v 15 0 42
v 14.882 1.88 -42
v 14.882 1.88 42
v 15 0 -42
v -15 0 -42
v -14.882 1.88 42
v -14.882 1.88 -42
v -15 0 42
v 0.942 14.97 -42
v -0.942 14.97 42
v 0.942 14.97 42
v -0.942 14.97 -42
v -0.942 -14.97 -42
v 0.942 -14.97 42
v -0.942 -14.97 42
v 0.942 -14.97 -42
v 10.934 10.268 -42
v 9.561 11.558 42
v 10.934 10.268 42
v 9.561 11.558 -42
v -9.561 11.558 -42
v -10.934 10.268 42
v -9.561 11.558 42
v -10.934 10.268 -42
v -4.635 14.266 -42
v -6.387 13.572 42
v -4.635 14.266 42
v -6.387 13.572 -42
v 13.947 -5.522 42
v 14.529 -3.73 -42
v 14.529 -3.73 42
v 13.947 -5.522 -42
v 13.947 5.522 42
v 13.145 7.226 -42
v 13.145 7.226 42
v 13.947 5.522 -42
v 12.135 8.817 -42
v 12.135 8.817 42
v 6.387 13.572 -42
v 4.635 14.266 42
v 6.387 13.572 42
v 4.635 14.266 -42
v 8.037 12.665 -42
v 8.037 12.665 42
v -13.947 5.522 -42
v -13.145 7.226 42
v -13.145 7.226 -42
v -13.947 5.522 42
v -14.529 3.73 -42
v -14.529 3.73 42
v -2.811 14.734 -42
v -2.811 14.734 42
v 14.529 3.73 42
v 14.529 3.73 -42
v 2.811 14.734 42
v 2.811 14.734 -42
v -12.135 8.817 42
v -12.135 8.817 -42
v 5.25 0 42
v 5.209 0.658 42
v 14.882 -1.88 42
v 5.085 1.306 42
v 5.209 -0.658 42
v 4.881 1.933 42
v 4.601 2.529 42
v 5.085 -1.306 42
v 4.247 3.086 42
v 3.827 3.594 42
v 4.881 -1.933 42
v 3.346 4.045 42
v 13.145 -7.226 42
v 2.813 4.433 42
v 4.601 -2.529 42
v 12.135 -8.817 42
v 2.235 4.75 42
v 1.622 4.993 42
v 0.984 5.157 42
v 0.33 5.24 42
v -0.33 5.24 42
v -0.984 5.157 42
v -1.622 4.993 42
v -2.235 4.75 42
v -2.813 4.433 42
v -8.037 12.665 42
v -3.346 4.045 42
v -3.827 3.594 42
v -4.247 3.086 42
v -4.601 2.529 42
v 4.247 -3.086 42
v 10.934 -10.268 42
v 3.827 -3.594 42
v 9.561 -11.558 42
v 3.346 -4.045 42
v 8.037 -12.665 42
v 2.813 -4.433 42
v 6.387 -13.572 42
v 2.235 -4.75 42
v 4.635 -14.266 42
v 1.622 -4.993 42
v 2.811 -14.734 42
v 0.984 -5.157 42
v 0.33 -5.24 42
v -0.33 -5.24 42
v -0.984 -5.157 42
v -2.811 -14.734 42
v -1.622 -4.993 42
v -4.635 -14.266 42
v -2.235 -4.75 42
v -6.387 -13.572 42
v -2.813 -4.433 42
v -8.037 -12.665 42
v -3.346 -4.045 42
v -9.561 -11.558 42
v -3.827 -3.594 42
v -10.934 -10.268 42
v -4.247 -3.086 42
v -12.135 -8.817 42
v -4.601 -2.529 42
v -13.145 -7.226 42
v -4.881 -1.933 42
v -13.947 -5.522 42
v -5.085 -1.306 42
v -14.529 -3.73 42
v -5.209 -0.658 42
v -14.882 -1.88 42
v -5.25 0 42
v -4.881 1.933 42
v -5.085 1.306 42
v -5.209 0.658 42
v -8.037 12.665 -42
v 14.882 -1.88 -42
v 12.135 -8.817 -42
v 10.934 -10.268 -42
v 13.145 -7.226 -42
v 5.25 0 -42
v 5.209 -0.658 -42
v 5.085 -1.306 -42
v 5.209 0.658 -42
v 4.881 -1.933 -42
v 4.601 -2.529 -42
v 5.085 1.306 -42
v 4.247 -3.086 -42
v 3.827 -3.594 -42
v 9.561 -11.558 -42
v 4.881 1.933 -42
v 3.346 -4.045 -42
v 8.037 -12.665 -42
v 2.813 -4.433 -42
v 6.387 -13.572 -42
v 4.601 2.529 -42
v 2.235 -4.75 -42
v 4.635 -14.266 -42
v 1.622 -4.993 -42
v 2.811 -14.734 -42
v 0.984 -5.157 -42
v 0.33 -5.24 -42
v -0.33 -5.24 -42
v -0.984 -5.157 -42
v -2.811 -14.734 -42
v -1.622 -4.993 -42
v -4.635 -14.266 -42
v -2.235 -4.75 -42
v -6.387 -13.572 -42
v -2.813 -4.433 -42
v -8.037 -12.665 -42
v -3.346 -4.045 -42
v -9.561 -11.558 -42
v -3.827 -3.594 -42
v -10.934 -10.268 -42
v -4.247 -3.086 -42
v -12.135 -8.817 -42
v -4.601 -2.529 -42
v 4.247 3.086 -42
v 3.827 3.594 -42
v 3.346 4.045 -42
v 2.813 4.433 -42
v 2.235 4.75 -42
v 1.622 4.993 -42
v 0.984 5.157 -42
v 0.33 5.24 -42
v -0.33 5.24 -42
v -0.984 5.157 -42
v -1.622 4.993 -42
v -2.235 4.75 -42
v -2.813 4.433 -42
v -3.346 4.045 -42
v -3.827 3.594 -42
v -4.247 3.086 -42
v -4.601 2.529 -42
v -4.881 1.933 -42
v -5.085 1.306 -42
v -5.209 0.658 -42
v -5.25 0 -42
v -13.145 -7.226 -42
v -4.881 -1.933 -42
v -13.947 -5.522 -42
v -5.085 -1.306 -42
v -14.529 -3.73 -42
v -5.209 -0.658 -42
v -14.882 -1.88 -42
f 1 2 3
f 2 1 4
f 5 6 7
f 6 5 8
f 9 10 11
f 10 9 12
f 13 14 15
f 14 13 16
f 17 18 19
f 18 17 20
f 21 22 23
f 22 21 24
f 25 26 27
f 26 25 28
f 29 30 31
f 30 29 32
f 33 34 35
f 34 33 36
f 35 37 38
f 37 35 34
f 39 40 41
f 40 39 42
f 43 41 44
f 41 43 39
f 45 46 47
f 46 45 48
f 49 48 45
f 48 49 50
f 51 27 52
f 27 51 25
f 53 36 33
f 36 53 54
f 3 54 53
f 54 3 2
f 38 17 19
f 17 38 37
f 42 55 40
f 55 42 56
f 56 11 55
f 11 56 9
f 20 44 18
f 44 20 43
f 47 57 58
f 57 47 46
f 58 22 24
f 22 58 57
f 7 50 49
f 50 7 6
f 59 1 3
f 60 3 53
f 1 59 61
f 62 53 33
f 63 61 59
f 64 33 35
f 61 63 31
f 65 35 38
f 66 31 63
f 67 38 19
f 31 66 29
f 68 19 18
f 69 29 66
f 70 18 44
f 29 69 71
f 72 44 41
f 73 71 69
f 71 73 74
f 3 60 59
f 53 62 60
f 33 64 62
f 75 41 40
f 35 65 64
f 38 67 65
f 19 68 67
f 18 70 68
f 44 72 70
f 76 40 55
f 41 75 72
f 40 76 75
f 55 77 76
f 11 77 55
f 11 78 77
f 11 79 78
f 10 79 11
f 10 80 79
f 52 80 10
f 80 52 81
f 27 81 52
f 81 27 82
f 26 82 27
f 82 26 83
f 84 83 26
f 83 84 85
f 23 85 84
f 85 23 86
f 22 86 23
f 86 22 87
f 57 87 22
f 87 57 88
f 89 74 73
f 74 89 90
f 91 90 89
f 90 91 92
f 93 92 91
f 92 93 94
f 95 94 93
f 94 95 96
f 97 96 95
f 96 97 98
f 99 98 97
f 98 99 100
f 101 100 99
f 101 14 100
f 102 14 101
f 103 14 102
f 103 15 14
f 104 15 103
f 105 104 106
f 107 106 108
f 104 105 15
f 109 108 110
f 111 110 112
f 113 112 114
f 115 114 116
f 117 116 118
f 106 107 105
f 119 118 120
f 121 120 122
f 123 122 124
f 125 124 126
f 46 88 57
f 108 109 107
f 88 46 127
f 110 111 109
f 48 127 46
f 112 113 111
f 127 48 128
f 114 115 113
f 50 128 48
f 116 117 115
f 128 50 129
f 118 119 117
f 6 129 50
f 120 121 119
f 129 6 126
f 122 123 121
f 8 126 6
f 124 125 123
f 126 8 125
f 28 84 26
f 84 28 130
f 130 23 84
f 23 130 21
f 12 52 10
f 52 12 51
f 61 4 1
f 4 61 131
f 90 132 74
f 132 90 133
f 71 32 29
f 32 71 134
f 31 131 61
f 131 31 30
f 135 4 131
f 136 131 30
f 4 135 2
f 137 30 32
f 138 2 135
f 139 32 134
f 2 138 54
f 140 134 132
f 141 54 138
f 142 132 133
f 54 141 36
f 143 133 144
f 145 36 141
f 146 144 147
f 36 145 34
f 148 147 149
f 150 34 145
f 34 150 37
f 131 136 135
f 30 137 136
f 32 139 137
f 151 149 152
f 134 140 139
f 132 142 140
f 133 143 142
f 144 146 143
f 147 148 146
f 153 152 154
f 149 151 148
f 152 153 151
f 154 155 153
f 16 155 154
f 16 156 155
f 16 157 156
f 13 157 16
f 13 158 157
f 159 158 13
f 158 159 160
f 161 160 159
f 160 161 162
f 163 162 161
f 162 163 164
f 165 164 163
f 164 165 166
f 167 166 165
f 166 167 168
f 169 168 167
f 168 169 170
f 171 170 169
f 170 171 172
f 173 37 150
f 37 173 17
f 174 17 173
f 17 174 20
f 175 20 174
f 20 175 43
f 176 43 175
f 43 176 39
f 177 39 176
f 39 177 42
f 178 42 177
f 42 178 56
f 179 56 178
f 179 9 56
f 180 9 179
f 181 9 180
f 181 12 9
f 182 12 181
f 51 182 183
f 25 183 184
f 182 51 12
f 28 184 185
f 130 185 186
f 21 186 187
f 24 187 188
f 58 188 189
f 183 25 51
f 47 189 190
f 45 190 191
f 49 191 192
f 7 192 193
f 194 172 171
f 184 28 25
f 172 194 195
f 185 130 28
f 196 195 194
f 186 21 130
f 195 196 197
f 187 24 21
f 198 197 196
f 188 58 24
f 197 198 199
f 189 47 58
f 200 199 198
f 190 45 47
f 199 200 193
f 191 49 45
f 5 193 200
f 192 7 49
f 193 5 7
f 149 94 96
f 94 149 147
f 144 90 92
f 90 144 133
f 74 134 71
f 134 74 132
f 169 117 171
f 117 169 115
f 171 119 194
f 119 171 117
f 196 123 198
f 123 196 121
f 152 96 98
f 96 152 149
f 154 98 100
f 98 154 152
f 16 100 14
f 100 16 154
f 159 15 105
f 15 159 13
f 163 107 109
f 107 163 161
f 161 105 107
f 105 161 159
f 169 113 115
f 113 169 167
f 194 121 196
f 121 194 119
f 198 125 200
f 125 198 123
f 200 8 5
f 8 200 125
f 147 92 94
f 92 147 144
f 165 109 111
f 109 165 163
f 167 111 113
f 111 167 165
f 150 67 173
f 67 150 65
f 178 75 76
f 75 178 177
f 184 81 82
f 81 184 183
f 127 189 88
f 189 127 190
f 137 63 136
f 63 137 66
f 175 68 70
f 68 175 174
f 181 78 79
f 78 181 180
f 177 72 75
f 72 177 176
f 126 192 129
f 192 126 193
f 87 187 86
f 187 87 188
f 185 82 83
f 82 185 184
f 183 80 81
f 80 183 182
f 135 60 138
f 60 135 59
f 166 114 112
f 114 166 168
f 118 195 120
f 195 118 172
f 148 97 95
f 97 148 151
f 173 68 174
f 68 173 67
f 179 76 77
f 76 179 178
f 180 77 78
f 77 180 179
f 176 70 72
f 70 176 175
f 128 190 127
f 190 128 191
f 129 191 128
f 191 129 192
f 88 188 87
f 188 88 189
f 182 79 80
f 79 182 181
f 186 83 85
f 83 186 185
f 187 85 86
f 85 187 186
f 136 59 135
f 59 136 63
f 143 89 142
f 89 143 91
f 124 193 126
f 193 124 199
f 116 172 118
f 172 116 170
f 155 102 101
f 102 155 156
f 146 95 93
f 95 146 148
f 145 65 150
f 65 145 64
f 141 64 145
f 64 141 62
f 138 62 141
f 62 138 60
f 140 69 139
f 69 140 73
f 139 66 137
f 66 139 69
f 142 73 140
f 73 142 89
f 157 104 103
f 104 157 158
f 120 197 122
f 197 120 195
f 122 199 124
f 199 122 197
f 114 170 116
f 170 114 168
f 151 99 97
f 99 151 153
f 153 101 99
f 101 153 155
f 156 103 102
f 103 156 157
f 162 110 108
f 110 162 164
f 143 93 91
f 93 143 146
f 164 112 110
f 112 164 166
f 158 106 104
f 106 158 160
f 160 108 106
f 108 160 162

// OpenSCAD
$fn = 50;


difference() {
	union() {
		translate(v = [0, 0, -42.0000000000]) {
			cylinder(h = 84, r = 15.0000000000);
		}
	}
	union() {
		translate(v = [0, 0, -100.0000000000]) {
			cylinder(h = 200, r = 5.2500000000);
		}
	}
}
